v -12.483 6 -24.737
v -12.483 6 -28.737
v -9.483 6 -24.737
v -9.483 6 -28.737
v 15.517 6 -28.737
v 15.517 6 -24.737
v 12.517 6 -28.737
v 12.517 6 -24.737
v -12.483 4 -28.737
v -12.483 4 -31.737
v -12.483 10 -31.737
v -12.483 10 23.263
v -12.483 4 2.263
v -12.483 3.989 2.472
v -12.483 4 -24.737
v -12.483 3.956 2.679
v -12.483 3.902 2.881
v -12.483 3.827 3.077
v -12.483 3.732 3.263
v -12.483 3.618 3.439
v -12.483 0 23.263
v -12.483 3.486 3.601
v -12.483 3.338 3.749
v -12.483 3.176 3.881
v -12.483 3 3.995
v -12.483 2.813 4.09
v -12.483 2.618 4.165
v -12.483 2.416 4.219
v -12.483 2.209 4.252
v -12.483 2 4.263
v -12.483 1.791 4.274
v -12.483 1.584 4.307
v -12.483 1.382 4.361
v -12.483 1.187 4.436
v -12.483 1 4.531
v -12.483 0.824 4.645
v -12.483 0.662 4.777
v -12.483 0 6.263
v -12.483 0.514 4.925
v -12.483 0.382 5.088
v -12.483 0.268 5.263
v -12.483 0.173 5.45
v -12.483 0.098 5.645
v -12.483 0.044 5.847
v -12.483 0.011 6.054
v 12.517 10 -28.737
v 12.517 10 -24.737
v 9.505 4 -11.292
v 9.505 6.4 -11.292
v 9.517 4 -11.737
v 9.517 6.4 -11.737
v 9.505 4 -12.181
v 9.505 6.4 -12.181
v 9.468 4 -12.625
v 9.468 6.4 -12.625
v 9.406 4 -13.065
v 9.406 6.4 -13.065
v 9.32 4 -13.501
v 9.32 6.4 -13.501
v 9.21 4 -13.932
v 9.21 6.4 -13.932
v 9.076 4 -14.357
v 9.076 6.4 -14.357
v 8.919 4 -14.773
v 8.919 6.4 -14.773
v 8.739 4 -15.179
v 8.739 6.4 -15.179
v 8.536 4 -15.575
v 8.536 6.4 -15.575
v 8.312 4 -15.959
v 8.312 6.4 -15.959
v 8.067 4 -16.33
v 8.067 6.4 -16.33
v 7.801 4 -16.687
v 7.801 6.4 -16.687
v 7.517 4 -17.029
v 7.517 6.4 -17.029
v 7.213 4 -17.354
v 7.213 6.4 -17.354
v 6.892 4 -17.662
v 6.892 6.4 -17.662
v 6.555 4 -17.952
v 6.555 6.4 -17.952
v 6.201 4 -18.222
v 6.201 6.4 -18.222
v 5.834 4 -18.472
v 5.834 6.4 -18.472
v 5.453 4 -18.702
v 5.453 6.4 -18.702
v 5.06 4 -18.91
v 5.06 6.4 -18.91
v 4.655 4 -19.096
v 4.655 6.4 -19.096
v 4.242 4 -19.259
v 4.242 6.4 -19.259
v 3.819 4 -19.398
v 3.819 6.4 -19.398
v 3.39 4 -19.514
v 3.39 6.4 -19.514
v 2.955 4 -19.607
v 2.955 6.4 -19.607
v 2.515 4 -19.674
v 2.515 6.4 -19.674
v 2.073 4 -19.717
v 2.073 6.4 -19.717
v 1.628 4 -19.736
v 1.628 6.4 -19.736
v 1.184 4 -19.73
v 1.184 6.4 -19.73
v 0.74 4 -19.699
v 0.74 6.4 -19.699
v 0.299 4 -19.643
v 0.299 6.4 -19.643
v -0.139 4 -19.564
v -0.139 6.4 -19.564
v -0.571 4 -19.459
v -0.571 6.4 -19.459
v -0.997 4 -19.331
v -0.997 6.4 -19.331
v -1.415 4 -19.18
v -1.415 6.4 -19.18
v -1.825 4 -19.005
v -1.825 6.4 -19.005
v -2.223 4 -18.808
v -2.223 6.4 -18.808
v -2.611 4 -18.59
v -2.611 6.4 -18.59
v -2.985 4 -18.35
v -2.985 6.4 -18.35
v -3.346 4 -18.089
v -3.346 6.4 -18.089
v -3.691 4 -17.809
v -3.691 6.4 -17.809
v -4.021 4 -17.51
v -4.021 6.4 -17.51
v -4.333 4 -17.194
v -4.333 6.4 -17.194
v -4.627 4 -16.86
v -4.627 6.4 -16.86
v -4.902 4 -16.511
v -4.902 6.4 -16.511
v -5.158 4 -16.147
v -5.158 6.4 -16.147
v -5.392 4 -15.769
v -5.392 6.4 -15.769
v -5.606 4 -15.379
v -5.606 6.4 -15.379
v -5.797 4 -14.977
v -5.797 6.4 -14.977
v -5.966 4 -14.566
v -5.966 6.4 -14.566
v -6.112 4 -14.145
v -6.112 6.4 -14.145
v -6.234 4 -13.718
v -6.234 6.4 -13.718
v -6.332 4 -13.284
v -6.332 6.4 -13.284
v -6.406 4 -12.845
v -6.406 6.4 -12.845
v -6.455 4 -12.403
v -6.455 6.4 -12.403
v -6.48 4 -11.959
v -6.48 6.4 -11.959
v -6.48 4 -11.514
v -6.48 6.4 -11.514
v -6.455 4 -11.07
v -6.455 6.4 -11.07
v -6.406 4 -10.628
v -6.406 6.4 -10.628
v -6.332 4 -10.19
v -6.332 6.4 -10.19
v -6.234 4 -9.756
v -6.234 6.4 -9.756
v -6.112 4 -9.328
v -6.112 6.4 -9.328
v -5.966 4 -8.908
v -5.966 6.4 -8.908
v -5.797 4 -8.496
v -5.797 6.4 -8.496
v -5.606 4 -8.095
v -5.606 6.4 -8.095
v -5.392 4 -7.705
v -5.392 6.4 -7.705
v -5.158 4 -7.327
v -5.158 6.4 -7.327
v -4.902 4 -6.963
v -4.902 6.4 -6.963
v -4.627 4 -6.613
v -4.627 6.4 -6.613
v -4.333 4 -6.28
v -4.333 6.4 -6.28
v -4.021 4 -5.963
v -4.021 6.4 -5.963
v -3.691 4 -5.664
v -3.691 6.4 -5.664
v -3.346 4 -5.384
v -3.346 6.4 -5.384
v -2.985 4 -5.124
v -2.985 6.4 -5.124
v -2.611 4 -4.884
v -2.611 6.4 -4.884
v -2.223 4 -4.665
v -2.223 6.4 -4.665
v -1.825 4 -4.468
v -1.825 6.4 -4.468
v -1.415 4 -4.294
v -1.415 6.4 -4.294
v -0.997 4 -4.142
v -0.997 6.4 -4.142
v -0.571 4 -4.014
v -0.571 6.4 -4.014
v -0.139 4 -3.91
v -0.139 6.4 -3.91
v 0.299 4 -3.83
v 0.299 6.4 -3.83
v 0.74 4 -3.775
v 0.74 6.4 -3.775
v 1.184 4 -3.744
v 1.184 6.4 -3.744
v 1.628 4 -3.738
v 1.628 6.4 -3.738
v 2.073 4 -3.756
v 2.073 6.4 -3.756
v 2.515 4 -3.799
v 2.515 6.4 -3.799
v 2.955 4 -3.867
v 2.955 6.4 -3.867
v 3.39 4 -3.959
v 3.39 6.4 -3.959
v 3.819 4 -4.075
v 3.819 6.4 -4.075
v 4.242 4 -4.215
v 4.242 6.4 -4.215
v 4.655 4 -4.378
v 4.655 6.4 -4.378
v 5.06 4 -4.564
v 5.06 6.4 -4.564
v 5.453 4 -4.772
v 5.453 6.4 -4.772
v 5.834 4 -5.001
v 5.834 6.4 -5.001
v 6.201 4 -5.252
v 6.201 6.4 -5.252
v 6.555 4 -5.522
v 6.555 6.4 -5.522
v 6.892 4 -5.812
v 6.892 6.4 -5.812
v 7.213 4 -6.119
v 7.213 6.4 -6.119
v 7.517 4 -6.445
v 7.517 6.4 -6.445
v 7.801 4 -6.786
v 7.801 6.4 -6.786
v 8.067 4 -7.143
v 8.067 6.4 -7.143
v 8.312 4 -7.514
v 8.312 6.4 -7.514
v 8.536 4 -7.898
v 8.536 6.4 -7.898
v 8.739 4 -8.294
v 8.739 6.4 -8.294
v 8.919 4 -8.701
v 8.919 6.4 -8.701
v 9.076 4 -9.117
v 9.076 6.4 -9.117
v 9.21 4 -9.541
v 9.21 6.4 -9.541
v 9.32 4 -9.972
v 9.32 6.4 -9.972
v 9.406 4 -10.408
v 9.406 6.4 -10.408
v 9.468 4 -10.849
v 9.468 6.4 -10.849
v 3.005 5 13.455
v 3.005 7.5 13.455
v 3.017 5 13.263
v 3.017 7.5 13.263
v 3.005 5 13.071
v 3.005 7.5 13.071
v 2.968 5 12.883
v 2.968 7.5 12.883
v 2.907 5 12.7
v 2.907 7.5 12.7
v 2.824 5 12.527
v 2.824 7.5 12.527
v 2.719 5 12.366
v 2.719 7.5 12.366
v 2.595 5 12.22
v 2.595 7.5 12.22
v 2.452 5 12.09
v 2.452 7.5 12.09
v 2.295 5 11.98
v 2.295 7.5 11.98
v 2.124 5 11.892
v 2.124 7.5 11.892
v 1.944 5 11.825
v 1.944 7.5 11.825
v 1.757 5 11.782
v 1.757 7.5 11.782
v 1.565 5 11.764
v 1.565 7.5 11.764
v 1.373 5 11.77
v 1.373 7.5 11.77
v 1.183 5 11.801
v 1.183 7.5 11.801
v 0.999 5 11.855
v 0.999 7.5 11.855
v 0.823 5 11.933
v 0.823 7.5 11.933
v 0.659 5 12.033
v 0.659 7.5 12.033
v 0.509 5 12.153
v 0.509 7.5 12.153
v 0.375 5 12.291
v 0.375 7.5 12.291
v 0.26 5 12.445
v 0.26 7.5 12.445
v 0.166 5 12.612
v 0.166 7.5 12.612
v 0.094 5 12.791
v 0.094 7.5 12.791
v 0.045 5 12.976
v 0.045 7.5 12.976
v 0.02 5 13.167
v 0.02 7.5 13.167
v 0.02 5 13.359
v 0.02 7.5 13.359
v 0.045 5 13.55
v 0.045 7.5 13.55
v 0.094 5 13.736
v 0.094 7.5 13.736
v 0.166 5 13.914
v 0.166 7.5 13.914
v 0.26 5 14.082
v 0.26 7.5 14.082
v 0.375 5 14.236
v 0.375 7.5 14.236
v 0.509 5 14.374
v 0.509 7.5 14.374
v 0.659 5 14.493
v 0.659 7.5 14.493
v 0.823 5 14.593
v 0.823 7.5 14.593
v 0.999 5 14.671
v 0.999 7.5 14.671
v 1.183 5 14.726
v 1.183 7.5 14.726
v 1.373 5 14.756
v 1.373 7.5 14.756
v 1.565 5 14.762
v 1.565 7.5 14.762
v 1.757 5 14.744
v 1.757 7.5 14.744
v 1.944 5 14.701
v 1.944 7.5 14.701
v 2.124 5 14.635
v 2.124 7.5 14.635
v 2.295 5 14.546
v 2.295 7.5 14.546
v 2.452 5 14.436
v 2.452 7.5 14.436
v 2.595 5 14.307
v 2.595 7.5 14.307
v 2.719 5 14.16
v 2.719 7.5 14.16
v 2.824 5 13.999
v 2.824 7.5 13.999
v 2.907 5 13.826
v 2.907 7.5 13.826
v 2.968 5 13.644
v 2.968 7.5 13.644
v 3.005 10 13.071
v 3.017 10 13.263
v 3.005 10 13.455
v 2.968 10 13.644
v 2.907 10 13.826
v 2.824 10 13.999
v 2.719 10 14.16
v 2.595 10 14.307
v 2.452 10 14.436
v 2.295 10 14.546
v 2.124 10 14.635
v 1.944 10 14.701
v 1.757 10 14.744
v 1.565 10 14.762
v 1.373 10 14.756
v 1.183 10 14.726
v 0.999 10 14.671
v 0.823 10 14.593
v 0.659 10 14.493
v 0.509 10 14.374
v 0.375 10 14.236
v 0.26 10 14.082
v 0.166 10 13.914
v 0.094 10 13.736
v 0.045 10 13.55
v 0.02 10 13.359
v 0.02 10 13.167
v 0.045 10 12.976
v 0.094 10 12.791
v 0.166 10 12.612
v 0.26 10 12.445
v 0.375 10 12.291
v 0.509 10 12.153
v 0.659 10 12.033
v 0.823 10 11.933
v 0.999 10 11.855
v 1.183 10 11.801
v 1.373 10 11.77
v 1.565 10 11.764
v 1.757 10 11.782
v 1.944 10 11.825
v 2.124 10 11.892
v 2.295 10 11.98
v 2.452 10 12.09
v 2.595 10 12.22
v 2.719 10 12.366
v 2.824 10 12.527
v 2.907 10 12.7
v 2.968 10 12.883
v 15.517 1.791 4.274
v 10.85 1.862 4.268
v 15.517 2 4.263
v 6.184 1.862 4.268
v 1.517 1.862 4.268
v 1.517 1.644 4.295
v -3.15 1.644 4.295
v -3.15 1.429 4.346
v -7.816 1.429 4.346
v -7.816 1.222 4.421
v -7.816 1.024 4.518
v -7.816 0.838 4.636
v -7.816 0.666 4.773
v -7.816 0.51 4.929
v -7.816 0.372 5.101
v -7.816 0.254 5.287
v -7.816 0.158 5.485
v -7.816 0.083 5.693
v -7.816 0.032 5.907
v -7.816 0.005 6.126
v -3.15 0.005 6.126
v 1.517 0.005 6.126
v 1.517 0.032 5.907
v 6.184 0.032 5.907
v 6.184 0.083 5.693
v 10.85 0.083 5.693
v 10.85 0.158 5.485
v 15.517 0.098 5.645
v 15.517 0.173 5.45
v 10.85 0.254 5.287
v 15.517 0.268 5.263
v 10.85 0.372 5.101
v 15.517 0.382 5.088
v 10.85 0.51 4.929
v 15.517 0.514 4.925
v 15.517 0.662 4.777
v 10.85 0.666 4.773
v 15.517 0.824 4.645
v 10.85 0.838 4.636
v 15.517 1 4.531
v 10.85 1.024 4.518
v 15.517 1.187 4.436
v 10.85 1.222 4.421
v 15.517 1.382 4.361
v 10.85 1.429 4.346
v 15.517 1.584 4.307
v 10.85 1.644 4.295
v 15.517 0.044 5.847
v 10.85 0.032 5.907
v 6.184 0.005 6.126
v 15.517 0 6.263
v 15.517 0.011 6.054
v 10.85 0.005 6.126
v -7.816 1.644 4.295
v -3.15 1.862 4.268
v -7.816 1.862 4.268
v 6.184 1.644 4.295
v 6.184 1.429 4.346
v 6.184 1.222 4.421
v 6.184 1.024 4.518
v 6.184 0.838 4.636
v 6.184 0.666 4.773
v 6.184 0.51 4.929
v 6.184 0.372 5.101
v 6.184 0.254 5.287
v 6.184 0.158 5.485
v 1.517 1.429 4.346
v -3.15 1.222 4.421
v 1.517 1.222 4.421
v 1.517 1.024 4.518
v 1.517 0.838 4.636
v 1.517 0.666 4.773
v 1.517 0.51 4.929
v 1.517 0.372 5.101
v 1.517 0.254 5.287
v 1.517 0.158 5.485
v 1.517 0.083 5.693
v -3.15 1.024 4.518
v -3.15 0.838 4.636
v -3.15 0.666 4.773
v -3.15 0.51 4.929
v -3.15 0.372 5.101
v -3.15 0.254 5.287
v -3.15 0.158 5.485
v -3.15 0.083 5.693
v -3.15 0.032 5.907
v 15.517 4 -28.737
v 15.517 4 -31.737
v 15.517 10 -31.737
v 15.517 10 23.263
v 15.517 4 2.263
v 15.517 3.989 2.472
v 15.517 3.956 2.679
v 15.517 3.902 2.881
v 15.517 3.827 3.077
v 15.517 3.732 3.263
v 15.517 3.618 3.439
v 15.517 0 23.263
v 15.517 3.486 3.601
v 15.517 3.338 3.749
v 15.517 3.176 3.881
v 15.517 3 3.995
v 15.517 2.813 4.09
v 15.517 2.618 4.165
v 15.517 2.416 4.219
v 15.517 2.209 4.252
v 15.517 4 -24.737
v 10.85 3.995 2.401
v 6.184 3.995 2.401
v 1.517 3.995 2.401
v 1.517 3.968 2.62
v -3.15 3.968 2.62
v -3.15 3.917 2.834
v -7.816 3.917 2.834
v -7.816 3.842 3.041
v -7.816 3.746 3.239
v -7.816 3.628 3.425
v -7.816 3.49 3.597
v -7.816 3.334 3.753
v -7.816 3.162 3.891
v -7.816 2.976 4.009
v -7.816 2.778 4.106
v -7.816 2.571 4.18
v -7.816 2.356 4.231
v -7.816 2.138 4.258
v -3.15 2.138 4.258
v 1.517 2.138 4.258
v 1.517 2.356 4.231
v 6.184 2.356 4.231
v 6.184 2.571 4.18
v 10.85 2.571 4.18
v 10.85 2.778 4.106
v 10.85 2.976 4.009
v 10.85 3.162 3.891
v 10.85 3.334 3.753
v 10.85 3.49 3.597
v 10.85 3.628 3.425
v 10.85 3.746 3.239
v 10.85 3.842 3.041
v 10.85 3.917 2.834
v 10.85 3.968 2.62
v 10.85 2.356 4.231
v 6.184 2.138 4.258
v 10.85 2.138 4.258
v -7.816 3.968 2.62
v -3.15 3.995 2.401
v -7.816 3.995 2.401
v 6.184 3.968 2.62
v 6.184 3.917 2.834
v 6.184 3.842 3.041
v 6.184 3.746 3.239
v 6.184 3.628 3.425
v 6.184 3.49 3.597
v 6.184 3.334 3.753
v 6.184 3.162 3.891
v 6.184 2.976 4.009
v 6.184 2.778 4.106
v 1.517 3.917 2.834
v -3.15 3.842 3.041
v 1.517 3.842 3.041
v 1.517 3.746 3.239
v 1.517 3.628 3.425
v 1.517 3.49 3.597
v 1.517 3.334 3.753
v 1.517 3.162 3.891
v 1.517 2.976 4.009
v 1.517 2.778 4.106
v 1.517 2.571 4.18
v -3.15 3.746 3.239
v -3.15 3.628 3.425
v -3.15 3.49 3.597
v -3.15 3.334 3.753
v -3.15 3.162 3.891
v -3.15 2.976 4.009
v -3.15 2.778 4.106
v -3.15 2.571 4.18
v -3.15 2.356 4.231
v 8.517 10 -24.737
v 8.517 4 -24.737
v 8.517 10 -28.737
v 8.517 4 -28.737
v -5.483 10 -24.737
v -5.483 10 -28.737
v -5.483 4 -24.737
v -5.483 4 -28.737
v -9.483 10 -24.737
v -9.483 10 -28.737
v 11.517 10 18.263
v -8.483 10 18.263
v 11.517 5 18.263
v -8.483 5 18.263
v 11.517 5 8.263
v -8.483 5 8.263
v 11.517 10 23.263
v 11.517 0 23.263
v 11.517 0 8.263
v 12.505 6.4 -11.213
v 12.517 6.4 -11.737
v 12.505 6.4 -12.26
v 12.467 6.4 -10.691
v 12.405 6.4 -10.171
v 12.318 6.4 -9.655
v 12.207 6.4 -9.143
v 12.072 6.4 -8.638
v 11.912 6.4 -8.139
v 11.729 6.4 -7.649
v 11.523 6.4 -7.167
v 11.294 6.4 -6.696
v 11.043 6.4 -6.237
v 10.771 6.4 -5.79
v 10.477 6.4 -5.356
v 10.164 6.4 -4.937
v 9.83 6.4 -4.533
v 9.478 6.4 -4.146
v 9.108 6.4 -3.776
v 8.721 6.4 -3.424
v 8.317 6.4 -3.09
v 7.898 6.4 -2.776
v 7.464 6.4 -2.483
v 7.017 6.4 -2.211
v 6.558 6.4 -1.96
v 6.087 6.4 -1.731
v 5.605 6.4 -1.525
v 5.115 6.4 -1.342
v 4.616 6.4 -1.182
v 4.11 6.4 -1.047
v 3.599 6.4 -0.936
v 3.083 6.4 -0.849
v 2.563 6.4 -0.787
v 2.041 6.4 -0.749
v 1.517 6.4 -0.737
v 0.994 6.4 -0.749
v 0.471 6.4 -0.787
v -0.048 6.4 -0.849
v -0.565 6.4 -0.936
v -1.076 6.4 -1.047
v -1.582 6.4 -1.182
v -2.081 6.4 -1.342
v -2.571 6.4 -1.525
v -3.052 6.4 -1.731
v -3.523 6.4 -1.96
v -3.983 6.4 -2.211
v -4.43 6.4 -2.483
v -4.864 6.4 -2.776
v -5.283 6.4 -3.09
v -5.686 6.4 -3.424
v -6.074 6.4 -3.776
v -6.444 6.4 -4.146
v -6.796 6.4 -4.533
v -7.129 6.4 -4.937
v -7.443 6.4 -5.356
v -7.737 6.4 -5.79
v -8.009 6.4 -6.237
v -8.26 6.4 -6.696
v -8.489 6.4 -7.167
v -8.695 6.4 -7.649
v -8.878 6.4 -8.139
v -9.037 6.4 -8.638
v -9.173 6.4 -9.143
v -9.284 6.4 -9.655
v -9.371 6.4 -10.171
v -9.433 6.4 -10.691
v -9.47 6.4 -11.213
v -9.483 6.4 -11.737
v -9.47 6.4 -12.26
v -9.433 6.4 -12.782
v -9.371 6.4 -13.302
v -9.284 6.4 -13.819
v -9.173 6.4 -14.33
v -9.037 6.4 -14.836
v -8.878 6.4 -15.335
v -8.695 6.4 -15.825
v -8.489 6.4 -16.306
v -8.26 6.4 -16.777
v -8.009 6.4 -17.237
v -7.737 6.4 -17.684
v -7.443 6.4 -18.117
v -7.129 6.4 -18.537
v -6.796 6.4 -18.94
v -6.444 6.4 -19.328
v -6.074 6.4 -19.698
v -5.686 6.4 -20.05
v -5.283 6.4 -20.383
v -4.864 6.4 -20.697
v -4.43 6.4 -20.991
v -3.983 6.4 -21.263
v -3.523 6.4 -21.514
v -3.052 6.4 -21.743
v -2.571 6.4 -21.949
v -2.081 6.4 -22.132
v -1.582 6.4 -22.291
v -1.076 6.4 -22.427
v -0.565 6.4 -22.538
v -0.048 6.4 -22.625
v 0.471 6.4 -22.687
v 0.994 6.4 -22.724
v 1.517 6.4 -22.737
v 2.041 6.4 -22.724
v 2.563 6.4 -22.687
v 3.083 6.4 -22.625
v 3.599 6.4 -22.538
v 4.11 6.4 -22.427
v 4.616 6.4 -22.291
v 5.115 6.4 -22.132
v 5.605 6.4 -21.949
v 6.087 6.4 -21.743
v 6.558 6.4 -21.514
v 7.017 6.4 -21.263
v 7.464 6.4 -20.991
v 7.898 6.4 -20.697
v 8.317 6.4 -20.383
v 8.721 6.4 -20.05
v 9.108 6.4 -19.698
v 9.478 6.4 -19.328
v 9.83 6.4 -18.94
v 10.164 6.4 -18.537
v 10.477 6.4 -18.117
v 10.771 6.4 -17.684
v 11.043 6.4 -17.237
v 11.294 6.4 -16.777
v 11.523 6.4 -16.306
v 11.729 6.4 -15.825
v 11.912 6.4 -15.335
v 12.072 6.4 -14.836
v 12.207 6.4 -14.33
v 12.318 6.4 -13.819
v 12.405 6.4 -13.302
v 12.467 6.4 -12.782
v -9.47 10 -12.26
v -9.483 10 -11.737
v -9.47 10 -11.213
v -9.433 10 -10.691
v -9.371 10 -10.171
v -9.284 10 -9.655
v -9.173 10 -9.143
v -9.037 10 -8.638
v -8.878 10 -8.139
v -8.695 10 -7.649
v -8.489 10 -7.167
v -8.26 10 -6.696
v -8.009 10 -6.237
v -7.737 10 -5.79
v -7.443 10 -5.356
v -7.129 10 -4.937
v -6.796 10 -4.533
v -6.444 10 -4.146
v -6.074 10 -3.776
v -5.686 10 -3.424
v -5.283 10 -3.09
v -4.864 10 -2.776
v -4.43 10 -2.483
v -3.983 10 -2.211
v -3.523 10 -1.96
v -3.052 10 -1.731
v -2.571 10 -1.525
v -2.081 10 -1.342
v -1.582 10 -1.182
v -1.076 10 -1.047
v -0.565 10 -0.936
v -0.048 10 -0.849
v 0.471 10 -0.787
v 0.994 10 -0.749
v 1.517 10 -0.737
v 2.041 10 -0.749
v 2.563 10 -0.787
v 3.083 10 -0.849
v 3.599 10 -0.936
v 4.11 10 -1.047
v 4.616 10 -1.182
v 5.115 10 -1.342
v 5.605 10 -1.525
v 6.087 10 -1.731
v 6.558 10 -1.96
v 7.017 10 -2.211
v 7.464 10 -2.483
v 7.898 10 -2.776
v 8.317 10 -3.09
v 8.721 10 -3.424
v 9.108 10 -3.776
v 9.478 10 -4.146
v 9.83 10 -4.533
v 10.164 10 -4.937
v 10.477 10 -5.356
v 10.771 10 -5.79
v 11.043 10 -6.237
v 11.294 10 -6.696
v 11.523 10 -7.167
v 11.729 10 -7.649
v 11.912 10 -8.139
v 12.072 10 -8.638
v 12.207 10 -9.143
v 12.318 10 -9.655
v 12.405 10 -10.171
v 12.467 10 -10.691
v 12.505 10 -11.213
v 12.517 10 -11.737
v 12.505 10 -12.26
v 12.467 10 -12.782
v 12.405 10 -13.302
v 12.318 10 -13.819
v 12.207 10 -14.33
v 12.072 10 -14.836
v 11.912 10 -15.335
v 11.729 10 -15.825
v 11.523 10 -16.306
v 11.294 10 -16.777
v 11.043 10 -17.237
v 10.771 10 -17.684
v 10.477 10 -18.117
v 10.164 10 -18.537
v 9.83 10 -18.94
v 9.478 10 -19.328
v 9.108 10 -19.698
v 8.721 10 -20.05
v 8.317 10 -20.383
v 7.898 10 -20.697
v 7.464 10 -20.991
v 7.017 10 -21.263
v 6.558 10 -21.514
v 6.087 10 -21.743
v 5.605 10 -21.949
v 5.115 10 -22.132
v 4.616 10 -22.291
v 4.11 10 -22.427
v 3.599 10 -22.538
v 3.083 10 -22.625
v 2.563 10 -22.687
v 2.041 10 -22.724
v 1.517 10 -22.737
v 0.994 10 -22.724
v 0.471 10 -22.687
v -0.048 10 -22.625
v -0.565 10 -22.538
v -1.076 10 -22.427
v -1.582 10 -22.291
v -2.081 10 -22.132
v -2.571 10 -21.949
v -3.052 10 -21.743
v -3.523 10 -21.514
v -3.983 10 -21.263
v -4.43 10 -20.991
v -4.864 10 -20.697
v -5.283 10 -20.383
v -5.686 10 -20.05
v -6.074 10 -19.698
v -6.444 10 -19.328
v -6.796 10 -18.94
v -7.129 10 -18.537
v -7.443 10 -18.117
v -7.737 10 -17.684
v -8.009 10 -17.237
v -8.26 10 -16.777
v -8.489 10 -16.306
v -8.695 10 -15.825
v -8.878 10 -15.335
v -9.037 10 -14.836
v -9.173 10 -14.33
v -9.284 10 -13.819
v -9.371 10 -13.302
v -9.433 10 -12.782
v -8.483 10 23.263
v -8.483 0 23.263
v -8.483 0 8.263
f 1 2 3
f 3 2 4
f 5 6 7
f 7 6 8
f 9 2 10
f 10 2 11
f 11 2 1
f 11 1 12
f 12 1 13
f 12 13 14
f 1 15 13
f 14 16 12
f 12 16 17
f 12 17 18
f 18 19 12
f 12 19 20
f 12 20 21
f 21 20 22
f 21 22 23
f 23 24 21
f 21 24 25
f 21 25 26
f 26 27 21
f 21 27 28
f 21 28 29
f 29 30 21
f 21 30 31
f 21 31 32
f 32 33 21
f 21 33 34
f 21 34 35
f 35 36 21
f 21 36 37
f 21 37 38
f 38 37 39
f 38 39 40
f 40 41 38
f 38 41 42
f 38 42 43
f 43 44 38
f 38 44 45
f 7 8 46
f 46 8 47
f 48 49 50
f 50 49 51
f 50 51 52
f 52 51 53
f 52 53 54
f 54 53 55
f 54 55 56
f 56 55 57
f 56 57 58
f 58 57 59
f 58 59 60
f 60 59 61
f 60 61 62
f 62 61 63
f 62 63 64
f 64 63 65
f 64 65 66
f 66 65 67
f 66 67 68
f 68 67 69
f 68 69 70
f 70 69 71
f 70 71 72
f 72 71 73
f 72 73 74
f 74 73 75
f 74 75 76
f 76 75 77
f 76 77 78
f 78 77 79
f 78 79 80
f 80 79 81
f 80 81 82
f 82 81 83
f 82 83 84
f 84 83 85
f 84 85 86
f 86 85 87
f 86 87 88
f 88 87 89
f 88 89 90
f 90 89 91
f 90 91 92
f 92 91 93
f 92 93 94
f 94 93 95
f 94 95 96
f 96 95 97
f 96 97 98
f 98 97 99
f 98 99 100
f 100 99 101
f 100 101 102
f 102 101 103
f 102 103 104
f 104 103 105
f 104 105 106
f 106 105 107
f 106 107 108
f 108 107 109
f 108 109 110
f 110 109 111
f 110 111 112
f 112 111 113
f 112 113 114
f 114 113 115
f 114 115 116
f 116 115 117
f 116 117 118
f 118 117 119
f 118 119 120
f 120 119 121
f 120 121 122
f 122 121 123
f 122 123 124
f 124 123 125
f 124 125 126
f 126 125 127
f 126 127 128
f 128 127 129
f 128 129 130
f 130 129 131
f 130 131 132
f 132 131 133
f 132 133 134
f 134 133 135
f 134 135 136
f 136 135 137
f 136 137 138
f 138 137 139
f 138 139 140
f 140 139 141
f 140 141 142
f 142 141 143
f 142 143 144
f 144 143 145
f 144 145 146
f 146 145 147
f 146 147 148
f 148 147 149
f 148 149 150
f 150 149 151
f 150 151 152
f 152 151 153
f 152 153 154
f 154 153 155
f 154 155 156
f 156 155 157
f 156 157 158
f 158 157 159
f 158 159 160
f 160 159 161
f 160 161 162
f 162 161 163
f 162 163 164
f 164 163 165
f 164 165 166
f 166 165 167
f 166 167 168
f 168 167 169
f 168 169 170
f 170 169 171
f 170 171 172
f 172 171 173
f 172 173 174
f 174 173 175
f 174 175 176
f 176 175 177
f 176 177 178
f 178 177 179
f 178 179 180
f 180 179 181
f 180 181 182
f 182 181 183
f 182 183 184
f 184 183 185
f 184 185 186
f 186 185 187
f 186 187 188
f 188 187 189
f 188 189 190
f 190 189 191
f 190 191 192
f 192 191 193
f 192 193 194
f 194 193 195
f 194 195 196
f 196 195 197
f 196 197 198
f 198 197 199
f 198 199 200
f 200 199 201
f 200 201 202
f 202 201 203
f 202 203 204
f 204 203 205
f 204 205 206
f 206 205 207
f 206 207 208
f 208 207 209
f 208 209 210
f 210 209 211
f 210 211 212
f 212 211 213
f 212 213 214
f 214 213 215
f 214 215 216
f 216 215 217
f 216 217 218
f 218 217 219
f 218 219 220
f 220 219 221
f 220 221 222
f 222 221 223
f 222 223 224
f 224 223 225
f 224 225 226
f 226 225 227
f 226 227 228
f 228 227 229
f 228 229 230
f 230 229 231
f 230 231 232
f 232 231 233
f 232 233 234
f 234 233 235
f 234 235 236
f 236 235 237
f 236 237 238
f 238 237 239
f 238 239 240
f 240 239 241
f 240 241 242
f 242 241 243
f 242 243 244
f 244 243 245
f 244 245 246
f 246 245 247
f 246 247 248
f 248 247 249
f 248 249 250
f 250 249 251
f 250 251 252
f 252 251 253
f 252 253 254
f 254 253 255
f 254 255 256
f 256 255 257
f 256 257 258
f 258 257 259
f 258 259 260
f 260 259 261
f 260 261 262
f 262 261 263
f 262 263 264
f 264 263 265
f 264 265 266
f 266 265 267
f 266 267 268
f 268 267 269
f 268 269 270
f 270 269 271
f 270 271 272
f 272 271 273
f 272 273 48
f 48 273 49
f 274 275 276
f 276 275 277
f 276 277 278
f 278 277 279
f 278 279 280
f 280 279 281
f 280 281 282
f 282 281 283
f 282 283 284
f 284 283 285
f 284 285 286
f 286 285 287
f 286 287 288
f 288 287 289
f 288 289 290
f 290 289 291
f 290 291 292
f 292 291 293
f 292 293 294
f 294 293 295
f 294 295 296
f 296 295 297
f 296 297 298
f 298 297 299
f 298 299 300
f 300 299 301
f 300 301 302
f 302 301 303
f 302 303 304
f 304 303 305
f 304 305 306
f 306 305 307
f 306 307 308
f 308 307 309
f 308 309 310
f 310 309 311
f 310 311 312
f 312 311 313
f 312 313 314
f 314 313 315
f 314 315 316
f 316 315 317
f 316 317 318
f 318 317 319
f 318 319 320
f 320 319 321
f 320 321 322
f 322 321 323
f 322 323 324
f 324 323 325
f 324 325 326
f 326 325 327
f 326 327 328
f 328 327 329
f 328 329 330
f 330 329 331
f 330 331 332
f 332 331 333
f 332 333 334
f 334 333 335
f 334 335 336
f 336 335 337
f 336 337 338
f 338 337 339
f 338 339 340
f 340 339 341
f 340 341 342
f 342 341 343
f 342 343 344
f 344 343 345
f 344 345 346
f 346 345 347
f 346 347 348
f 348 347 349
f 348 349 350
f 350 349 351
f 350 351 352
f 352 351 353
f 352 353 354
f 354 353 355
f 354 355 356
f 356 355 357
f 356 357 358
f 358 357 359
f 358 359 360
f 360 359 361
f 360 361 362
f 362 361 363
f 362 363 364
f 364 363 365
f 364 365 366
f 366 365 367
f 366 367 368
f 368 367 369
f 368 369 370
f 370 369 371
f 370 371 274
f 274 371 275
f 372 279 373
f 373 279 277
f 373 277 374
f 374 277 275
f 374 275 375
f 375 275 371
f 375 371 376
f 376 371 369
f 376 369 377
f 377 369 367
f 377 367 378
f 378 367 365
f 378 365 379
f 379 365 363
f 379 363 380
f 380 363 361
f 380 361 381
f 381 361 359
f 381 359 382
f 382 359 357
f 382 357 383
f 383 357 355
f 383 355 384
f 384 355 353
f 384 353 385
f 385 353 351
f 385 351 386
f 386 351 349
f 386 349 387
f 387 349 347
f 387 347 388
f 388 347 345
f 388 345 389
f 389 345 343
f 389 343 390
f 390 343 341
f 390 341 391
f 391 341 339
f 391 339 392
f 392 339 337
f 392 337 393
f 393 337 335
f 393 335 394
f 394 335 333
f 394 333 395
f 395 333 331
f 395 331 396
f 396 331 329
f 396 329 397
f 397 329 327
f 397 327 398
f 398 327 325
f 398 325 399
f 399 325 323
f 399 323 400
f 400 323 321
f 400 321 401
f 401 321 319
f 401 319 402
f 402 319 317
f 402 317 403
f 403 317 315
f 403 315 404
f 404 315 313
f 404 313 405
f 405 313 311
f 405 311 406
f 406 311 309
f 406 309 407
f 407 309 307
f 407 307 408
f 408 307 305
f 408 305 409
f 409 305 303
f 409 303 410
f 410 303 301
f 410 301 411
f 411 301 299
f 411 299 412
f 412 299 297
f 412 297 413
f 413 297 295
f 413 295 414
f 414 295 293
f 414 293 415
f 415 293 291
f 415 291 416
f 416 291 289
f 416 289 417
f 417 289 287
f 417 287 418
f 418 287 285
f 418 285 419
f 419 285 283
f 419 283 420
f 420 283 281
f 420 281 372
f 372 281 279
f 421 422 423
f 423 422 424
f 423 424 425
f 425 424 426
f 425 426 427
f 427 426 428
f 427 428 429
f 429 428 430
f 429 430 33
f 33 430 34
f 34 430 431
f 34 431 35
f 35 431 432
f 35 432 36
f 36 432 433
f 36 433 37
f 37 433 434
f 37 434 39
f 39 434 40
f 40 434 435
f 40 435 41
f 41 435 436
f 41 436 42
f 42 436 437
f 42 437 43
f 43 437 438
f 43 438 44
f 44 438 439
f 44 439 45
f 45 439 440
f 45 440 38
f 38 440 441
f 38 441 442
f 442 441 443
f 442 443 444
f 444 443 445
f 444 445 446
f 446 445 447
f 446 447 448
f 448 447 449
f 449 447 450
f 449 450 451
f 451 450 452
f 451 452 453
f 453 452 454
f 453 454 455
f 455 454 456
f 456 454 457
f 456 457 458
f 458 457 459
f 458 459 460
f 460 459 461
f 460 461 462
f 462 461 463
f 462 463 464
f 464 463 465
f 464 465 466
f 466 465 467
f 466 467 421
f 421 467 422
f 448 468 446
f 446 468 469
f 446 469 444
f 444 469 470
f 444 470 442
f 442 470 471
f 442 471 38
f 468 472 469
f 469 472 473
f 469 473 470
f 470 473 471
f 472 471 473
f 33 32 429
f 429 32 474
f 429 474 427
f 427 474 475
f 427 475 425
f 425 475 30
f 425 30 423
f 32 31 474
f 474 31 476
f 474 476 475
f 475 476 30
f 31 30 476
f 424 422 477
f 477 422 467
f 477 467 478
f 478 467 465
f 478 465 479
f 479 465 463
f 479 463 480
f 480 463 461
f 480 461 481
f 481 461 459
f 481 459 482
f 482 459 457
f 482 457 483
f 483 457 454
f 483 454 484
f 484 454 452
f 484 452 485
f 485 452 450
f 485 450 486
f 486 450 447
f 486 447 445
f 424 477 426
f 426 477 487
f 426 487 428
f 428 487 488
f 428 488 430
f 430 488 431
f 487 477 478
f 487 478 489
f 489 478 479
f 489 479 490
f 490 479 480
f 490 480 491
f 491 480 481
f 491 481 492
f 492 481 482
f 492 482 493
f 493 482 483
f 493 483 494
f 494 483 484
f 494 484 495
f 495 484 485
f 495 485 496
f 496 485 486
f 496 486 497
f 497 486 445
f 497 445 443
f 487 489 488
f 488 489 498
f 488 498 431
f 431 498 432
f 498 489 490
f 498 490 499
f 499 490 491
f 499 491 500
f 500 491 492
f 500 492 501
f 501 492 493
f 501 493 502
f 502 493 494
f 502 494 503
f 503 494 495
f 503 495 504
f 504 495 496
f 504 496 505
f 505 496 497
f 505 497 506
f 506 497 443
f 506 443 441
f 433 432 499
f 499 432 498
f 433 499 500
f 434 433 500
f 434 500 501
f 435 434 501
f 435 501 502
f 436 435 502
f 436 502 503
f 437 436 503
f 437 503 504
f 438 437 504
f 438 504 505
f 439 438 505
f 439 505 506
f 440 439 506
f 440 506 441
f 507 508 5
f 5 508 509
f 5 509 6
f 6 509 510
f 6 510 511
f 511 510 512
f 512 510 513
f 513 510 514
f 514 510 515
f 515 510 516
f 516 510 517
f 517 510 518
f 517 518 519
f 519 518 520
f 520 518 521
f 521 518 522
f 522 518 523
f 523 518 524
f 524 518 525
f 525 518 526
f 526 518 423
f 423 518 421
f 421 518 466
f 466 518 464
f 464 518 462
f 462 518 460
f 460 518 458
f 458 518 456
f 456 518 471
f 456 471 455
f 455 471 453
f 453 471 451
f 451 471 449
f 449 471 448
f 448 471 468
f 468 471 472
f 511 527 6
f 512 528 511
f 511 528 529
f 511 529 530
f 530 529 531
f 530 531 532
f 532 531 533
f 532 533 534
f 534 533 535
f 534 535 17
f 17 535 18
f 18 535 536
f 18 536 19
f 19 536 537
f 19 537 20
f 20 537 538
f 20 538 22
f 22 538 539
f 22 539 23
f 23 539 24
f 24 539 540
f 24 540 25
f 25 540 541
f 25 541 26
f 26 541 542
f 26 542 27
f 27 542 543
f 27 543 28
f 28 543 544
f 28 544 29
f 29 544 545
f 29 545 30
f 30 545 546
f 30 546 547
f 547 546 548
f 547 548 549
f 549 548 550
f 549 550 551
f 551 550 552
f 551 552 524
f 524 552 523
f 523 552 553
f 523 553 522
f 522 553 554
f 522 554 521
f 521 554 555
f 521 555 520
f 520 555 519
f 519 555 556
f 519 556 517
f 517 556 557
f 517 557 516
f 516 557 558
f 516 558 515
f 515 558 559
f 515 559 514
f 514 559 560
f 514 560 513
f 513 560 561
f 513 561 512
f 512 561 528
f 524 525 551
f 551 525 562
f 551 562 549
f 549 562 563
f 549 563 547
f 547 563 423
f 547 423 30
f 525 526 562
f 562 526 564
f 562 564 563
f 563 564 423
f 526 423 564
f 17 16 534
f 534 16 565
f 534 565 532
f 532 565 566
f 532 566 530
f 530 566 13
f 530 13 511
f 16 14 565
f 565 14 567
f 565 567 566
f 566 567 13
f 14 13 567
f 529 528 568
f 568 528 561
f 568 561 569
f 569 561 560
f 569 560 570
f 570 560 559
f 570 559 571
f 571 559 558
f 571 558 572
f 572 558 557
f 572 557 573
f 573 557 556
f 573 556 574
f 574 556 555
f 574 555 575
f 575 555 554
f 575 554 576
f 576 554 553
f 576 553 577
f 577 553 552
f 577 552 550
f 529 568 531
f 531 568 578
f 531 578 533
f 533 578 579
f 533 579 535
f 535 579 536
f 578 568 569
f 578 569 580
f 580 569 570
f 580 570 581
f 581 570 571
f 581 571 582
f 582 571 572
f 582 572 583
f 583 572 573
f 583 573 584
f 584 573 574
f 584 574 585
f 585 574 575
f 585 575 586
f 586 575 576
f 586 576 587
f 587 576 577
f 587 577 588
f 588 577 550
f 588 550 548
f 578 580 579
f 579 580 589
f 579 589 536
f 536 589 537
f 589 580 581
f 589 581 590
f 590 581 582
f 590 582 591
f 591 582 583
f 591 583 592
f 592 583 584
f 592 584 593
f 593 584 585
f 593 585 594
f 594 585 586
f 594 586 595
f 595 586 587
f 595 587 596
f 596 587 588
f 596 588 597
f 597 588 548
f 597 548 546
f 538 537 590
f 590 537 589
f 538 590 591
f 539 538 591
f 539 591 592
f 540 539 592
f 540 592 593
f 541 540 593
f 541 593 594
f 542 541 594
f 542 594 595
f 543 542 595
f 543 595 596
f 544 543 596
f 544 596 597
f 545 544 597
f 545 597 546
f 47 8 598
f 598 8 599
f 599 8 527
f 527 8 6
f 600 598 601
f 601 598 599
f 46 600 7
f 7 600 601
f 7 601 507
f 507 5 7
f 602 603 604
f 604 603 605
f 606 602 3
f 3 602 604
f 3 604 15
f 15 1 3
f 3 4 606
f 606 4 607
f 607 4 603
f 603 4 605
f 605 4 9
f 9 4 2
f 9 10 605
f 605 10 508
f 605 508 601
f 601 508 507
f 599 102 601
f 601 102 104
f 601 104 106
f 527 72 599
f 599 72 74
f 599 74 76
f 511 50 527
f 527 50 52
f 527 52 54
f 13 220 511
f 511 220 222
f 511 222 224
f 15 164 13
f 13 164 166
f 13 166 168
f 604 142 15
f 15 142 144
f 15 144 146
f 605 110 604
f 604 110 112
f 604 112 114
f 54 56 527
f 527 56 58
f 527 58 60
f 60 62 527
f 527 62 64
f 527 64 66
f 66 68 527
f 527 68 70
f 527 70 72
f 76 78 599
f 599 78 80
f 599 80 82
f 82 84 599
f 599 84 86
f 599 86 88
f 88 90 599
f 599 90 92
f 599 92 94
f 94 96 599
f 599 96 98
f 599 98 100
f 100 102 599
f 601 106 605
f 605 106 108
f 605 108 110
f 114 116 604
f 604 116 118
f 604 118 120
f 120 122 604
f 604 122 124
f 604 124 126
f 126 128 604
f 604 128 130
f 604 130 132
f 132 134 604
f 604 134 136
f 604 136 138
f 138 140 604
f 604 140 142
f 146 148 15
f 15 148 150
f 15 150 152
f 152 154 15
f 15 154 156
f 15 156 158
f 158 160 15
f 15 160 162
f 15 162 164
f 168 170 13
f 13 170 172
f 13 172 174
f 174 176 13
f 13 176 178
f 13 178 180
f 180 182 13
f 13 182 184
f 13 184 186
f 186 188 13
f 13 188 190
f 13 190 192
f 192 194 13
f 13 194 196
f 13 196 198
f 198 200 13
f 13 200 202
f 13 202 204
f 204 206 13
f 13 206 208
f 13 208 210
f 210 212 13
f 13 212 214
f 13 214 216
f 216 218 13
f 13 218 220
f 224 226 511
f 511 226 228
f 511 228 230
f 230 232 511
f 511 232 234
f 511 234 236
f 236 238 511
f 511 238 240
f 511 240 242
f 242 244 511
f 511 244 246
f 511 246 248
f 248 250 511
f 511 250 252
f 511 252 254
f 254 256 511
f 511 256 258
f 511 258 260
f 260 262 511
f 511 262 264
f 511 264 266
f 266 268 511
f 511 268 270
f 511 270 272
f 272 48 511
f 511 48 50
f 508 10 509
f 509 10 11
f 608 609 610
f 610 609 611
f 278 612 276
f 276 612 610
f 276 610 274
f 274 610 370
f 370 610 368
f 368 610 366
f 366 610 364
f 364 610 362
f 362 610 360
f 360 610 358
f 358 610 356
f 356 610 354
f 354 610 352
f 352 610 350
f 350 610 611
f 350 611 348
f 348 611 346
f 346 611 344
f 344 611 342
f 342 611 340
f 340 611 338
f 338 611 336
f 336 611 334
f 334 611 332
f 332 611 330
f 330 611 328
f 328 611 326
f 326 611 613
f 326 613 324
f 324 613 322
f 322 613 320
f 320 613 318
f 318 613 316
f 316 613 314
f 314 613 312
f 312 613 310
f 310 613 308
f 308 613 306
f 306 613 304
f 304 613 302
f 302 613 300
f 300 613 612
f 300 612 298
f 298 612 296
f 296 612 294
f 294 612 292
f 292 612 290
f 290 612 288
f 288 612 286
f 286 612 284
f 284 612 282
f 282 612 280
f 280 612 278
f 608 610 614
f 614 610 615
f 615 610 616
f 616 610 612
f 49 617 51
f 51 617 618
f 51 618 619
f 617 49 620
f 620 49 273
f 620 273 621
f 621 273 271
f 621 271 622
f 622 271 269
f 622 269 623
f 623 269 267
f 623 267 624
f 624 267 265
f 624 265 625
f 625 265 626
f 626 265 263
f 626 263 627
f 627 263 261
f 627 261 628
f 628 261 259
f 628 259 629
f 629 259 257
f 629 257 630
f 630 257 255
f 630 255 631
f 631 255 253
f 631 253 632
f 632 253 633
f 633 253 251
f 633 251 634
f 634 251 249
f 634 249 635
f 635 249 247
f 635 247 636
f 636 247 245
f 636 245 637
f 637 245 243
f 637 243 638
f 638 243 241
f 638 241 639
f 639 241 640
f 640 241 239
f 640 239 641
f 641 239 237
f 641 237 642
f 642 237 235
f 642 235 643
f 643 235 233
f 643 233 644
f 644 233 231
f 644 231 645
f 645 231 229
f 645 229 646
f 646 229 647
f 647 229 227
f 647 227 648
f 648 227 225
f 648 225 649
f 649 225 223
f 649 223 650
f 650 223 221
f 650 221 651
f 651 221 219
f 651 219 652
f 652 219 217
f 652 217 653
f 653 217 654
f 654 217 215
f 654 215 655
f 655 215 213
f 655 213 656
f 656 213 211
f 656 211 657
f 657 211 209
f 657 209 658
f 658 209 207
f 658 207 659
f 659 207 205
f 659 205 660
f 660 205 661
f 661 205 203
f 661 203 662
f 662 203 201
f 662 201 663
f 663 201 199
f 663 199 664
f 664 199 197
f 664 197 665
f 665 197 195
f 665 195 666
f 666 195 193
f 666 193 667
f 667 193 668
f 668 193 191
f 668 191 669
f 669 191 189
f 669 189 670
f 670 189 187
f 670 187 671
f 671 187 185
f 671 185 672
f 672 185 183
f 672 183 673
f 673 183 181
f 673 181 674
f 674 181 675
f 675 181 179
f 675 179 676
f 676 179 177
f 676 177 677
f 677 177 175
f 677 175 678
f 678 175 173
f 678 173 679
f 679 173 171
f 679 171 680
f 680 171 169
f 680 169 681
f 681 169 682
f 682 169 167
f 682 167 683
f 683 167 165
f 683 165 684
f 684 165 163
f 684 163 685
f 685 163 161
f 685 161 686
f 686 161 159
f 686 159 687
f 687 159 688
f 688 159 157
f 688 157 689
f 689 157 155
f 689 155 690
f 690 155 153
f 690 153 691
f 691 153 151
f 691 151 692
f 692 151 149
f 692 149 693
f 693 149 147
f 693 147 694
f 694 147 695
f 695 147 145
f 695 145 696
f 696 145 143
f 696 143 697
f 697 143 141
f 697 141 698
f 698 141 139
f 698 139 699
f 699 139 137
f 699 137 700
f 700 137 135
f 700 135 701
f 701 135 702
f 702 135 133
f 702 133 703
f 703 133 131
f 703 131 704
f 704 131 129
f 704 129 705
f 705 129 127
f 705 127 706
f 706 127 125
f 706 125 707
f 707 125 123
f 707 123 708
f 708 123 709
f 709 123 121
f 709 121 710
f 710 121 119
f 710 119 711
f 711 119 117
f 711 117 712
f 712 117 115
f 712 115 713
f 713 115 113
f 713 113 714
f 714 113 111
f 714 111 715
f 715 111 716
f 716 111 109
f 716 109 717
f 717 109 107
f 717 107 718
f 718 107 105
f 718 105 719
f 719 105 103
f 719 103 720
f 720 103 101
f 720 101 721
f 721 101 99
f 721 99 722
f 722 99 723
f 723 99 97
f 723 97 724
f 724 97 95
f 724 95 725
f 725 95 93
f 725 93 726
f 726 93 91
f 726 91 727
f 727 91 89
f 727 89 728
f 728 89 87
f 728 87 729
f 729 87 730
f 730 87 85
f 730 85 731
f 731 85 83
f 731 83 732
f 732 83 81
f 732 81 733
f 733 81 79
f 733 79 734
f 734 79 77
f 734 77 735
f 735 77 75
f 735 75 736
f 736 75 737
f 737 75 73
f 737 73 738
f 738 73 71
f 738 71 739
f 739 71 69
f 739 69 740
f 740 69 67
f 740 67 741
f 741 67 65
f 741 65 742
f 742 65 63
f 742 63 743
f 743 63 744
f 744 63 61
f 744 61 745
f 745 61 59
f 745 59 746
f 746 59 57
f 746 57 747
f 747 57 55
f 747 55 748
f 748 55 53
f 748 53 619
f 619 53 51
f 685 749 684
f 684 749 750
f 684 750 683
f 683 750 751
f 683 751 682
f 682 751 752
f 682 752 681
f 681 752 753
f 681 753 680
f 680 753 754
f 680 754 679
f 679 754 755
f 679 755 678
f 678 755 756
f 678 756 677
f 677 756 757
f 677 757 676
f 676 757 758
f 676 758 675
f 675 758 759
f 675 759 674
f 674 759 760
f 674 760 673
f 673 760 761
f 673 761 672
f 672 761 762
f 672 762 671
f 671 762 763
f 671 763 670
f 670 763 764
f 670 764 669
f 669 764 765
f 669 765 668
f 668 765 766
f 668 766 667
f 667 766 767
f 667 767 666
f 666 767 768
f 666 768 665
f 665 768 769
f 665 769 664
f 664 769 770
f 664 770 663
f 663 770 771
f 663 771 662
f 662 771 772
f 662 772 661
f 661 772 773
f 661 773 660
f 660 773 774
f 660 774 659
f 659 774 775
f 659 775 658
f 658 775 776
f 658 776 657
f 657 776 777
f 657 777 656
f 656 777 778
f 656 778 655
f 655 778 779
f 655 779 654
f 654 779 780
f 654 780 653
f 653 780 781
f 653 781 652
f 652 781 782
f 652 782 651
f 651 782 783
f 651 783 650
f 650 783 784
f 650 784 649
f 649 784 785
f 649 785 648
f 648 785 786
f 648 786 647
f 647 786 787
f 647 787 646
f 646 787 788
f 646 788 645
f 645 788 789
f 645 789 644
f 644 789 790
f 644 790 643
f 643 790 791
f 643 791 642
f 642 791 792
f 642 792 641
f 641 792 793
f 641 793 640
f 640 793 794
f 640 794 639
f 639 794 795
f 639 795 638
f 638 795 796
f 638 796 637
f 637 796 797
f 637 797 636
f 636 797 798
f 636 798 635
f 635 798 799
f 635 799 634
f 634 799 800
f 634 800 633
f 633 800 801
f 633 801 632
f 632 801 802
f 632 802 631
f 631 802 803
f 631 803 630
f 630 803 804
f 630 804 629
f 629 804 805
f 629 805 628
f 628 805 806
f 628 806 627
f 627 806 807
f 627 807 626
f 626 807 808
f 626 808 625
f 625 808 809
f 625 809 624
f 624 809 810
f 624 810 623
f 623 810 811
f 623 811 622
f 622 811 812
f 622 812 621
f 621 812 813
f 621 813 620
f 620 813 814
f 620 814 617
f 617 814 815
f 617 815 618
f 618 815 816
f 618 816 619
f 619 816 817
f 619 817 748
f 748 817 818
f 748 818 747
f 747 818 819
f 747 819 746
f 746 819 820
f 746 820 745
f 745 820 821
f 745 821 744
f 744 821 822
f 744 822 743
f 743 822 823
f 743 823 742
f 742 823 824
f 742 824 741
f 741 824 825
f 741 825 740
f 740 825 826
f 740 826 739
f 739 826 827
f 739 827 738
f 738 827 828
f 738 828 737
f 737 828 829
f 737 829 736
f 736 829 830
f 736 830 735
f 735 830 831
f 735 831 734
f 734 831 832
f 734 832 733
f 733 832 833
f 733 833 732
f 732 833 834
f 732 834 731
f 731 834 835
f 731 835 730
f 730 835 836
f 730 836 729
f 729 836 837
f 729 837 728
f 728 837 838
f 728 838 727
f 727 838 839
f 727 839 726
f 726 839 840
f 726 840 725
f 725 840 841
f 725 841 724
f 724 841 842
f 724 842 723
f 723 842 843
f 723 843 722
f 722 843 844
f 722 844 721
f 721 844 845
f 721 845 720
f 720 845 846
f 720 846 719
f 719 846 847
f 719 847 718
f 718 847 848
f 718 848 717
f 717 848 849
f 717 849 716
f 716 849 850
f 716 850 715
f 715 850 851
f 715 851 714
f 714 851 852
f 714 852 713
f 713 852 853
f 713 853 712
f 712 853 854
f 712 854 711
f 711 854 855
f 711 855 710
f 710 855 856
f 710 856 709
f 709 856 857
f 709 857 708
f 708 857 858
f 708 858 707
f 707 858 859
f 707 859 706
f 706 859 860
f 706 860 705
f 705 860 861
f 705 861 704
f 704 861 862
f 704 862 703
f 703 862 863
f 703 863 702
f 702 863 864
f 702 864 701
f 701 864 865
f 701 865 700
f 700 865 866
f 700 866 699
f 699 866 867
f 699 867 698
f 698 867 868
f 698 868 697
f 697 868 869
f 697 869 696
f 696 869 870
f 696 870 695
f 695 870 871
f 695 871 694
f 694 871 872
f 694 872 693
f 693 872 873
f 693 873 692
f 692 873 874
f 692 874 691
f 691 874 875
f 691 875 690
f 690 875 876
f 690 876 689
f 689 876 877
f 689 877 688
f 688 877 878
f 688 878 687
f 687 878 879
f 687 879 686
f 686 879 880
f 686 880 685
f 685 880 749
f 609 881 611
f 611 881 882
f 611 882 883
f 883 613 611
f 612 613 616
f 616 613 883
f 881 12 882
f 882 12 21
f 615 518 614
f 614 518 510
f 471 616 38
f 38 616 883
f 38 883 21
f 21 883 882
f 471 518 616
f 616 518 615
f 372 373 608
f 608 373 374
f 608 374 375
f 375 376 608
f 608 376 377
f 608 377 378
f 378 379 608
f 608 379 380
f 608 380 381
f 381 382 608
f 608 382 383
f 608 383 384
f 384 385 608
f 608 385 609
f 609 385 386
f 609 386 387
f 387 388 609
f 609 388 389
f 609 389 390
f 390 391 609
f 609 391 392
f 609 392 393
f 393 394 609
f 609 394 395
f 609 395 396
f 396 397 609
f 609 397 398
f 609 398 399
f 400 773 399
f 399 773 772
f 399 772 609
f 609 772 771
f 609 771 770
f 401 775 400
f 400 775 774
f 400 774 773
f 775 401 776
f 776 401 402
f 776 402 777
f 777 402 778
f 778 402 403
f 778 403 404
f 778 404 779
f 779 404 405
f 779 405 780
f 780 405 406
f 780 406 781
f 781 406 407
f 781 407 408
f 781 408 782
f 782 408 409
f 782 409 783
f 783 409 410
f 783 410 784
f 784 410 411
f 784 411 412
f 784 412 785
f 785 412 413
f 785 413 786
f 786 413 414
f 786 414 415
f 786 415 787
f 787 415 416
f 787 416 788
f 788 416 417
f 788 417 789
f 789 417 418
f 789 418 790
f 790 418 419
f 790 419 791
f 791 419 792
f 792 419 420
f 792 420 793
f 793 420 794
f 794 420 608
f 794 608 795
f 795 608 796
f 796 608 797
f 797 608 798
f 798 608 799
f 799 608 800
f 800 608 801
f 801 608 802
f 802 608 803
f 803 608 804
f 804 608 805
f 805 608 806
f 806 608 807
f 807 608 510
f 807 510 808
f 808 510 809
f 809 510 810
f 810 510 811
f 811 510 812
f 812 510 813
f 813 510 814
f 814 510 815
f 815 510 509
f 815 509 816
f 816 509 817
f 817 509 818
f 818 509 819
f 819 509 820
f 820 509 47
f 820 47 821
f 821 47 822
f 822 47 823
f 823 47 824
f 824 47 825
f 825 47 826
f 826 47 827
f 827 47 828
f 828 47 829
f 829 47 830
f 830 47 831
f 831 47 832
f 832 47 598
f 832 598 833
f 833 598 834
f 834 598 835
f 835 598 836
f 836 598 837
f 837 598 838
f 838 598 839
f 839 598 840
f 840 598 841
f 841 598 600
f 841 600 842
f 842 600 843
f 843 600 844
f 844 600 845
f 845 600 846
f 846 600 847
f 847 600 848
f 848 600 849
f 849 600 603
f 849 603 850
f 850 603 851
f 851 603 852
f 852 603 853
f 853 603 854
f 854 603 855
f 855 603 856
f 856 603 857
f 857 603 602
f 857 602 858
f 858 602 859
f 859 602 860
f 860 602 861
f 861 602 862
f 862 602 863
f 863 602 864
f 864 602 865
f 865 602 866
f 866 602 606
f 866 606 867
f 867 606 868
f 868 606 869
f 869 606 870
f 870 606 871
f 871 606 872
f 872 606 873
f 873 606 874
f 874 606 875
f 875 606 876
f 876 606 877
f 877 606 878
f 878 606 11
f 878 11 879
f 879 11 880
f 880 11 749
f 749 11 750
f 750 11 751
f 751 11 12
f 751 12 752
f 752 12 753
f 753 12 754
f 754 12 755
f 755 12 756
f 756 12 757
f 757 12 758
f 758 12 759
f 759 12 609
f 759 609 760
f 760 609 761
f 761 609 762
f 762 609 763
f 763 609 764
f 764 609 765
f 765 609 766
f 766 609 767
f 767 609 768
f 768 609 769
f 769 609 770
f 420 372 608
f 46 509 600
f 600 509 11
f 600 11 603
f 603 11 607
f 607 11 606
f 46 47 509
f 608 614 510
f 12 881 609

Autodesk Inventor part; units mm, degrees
ref_plane "YZ Plane" through (0, 0, 0) normal (1, 0, 0) x (0, 1, 0)
ref_plane "XZ Plane" through (0, 0, 0) normal (0, 1, 0) x (-1, 0, 0)
ref_plane "XY Plane" through (0, 0, 0) normal (0, 0, 1) x (1, 0, 0)
sketch "Sketch1" plane through (0, 0, 0) normal (0, 1, 0) x (-1, 0, 0)
  line L0 (-1.5171, 15.4904) -> (-1.5171, -24.1277) construction
  line L1 (12.4829, 23.2632) -> (-15.5171, 23.2632)
  line L2 (-15.5171, 23.2632) -> (-15.5171, -31.7368)
  line L3 (-15.5171, -31.7368) -> (12.4829, -31.7368)
  line L4 (12.4829, -31.7368) -> (12.4829, 23.2632)
  line L5 (1.173, -11.7368) -> (-5.6801, -11.7368) construction
  circle A0 centre (-1.5171, -11.7368) radius 11
  line L6 (8.4829, 8.2632) -> (-11.5171, 8.2632)
  line L7 (-11.5171, 8.2632) -> (-11.5171, 23.2632)
  line L8 (-11.5171, 23.2632) -> (8.4829, 23.2632)
  line L9 (8.4829, 23.2632) -> (8.4829, 8.2632)
  point P0 (0, 0)
  dimension "d0" = 22
  dimension "d1" = 28
  dimension "d2" = 20
  dimension "d3" = 15
  dimension "d4" = 20
  dimension "d16" = 55
extrude "Extrusion1" add sketch "Sketch1" along normal blind 10 contours L4 L3 L2 L1 L7 L6 L9
extrude "Extrusion2" add sketch "Sketch1" along normal blind 6.4 contours A0
sketch "Sketch2" plane through (0, 10, 0) normal (0, 1, 0) x (1, 0, 0)
  line L0 (11.5171, -8.2632) -> (-8.4829, -8.2632) projected
  line L1 (-8.4829, -8.2632) -> (11.5171, -8.2632)
  line L2 (11.5171, -8.2632) -> (11.5171, -18.2632)
  line L3 (11.5171, -18.2632) -> (-8.4829, -18.2632)
  line L4 (-8.4829, -18.2632) -> (-8.4829, -8.2632)
  point P0 (0, 0)
  dimension "d9" = 10
extrude "Extrusion3" add sketch "Sketch2" against normal blind 5
sketch "Sketch3" plane through (15.5171, 0, 23.2632) normal (1, 0, 0) x (0, 0, -1)
  line L0 (0, 0) -> (55, 0) construction
  line L1 (55, 0) -> (55, 10) construction
  line L2 (0, 10) -> (55, 10) construction
  line L3 (0, 0) -> (0, 10) construction
  line L4 (55, 0) -> (19, 0)
  line L5 (19, 0) -> (19, 4)
  line L6 (19, 4) -> (55, 4)
  line L7 (55, 4) -> (55, 0)
  line L8 (24, 6.4) -> (46, 6.4) construction
  line L9 (24, 10) -> (46, 10) construction
  point P0 (23.2632, 0)
  dimension "d12" = 6
  dimension "d17" = 5
extrude "Extrusion4" cut sketch "Sketch3" against normal through all
sketch "Sketch4" plane through (15.5171, 4, -31.7368) normal (0, -1, 0) x (1, 0, 0)
  line L0 (1.7907, 5) -> (-31.4365, 5) construction
  line L1 (0, 0) -> (-28, 0) construction
  line L2 (-3, 7) -> (-7, 7)
  line L3 (-7, 7) -> (-7, 3)
  line L4 (-7, 3) -> (-3, 3)
  line L5 (-3, 3) -> (-3, 7)
  line L6 (-5, 9.5929) -> (-5, 0.7775) construction
  line L7 (0, 36) -> (0, 0) construction
  line L8 (-14, 47.2272) -> (-14, 7.6092) construction
  line L9 (-25, 7) -> (-21, 7)
  line L10 (-21, 7) -> (-21, 3)
  line L11 (-21, 3) -> (-25, 3)
  line L12 (-25, 3) -> (-25, 7)
  point P0 (-15.5171, 31.7368)
  dimension "d18" = 5
  dimension "d19" = 4
  dimension "d20" = 5
extrude "Extrusion5" cut sketch "Sketch4" against normal through all
fillet "Fillet1" radius 2 2 edges at (1.5171, 4, 4.2632) (1.5171, 0, 4.2632)
sketch "Sketch5" plane through (0, 10, 0) normal (0, 1, 0) x (1, 0, 0)
  line L0 (11.5171, -18.2632) -> (-8.4829, -18.2632) construction
  line L1 (1.5171, -18.2632) -> (1.5171, -0.9417) construction
  circle A0 centre (1.5171, -13.2632) radius 1.5
  point P0 (0, 0)
  dimension "d24" = 3
  dimension "d25" = 5
extrude "Extrusion6" cut sketch "Sketch5" against normal through all
sketch "Sketch6" plane through (1.5171, 6.4, -11.7368) normal (0, 1, 0) x (1, 0, 0)
  circle A0 centre (0, 0) radius 11 construction
  circle A1 centre (0, 0) radius 8
  point P0 (-1.5171, -11.7368)
  dimension "d28" = 3
extrude "Extrusion7" cut sketch "Sketch6" against normal through all
sketch "Sketch8" plane through (-12.4829, 4, -31.7368) normal (0, -1, 0) x (1, 0, 0)
  circle A0 centre (14, 20) radius 8 construction
  line L0 (0, 34) -> (28, 34) construction
  line L1 (0, 0) -> (0, 34) construction
  line L2 (28, 0) -> (0, 0) construction
  line L3 (28, 34) -> (28, 0) construction
  line L4 (21, 3) -> (21, 7) construction
  line L5 (21, 7) -> (25, 7) construction
  line L6 (25, 7) -> (25, 3) construction
  line L7 (25, 3) -> (21, 3) construction
  line L8 (3, 3) -> (3, 7) construction
  line L9 (3, 7) -> (7, 7) construction
  line L10 (7, 7) -> (7, 3) construction
  line L11 (7, 3) -> (3, 3) construction
  line L12 (3, 7) -> (-3.7941, 7)
  line L13 (-3.7941, 7) -> (-3.7941, 3)
  line L14 (-3.7941, 3) -> (3, 3)
  line L15 (3, 3) -> (3, 7)
  line L16 (25, 7) -> (32.0495, 7)
  line L17 (32.0495, 7) -> (32.0495, 3)
  line L18 (32.0495, 3) -> (25, 3)
  line L19 (25, 3) -> (25, 7)
  point P0 (12.4829, 31.7368)
extrude "Extrusion9" cut sketch "Sketch8" against normal blind 2
properties part number "PISTON_bearing"
